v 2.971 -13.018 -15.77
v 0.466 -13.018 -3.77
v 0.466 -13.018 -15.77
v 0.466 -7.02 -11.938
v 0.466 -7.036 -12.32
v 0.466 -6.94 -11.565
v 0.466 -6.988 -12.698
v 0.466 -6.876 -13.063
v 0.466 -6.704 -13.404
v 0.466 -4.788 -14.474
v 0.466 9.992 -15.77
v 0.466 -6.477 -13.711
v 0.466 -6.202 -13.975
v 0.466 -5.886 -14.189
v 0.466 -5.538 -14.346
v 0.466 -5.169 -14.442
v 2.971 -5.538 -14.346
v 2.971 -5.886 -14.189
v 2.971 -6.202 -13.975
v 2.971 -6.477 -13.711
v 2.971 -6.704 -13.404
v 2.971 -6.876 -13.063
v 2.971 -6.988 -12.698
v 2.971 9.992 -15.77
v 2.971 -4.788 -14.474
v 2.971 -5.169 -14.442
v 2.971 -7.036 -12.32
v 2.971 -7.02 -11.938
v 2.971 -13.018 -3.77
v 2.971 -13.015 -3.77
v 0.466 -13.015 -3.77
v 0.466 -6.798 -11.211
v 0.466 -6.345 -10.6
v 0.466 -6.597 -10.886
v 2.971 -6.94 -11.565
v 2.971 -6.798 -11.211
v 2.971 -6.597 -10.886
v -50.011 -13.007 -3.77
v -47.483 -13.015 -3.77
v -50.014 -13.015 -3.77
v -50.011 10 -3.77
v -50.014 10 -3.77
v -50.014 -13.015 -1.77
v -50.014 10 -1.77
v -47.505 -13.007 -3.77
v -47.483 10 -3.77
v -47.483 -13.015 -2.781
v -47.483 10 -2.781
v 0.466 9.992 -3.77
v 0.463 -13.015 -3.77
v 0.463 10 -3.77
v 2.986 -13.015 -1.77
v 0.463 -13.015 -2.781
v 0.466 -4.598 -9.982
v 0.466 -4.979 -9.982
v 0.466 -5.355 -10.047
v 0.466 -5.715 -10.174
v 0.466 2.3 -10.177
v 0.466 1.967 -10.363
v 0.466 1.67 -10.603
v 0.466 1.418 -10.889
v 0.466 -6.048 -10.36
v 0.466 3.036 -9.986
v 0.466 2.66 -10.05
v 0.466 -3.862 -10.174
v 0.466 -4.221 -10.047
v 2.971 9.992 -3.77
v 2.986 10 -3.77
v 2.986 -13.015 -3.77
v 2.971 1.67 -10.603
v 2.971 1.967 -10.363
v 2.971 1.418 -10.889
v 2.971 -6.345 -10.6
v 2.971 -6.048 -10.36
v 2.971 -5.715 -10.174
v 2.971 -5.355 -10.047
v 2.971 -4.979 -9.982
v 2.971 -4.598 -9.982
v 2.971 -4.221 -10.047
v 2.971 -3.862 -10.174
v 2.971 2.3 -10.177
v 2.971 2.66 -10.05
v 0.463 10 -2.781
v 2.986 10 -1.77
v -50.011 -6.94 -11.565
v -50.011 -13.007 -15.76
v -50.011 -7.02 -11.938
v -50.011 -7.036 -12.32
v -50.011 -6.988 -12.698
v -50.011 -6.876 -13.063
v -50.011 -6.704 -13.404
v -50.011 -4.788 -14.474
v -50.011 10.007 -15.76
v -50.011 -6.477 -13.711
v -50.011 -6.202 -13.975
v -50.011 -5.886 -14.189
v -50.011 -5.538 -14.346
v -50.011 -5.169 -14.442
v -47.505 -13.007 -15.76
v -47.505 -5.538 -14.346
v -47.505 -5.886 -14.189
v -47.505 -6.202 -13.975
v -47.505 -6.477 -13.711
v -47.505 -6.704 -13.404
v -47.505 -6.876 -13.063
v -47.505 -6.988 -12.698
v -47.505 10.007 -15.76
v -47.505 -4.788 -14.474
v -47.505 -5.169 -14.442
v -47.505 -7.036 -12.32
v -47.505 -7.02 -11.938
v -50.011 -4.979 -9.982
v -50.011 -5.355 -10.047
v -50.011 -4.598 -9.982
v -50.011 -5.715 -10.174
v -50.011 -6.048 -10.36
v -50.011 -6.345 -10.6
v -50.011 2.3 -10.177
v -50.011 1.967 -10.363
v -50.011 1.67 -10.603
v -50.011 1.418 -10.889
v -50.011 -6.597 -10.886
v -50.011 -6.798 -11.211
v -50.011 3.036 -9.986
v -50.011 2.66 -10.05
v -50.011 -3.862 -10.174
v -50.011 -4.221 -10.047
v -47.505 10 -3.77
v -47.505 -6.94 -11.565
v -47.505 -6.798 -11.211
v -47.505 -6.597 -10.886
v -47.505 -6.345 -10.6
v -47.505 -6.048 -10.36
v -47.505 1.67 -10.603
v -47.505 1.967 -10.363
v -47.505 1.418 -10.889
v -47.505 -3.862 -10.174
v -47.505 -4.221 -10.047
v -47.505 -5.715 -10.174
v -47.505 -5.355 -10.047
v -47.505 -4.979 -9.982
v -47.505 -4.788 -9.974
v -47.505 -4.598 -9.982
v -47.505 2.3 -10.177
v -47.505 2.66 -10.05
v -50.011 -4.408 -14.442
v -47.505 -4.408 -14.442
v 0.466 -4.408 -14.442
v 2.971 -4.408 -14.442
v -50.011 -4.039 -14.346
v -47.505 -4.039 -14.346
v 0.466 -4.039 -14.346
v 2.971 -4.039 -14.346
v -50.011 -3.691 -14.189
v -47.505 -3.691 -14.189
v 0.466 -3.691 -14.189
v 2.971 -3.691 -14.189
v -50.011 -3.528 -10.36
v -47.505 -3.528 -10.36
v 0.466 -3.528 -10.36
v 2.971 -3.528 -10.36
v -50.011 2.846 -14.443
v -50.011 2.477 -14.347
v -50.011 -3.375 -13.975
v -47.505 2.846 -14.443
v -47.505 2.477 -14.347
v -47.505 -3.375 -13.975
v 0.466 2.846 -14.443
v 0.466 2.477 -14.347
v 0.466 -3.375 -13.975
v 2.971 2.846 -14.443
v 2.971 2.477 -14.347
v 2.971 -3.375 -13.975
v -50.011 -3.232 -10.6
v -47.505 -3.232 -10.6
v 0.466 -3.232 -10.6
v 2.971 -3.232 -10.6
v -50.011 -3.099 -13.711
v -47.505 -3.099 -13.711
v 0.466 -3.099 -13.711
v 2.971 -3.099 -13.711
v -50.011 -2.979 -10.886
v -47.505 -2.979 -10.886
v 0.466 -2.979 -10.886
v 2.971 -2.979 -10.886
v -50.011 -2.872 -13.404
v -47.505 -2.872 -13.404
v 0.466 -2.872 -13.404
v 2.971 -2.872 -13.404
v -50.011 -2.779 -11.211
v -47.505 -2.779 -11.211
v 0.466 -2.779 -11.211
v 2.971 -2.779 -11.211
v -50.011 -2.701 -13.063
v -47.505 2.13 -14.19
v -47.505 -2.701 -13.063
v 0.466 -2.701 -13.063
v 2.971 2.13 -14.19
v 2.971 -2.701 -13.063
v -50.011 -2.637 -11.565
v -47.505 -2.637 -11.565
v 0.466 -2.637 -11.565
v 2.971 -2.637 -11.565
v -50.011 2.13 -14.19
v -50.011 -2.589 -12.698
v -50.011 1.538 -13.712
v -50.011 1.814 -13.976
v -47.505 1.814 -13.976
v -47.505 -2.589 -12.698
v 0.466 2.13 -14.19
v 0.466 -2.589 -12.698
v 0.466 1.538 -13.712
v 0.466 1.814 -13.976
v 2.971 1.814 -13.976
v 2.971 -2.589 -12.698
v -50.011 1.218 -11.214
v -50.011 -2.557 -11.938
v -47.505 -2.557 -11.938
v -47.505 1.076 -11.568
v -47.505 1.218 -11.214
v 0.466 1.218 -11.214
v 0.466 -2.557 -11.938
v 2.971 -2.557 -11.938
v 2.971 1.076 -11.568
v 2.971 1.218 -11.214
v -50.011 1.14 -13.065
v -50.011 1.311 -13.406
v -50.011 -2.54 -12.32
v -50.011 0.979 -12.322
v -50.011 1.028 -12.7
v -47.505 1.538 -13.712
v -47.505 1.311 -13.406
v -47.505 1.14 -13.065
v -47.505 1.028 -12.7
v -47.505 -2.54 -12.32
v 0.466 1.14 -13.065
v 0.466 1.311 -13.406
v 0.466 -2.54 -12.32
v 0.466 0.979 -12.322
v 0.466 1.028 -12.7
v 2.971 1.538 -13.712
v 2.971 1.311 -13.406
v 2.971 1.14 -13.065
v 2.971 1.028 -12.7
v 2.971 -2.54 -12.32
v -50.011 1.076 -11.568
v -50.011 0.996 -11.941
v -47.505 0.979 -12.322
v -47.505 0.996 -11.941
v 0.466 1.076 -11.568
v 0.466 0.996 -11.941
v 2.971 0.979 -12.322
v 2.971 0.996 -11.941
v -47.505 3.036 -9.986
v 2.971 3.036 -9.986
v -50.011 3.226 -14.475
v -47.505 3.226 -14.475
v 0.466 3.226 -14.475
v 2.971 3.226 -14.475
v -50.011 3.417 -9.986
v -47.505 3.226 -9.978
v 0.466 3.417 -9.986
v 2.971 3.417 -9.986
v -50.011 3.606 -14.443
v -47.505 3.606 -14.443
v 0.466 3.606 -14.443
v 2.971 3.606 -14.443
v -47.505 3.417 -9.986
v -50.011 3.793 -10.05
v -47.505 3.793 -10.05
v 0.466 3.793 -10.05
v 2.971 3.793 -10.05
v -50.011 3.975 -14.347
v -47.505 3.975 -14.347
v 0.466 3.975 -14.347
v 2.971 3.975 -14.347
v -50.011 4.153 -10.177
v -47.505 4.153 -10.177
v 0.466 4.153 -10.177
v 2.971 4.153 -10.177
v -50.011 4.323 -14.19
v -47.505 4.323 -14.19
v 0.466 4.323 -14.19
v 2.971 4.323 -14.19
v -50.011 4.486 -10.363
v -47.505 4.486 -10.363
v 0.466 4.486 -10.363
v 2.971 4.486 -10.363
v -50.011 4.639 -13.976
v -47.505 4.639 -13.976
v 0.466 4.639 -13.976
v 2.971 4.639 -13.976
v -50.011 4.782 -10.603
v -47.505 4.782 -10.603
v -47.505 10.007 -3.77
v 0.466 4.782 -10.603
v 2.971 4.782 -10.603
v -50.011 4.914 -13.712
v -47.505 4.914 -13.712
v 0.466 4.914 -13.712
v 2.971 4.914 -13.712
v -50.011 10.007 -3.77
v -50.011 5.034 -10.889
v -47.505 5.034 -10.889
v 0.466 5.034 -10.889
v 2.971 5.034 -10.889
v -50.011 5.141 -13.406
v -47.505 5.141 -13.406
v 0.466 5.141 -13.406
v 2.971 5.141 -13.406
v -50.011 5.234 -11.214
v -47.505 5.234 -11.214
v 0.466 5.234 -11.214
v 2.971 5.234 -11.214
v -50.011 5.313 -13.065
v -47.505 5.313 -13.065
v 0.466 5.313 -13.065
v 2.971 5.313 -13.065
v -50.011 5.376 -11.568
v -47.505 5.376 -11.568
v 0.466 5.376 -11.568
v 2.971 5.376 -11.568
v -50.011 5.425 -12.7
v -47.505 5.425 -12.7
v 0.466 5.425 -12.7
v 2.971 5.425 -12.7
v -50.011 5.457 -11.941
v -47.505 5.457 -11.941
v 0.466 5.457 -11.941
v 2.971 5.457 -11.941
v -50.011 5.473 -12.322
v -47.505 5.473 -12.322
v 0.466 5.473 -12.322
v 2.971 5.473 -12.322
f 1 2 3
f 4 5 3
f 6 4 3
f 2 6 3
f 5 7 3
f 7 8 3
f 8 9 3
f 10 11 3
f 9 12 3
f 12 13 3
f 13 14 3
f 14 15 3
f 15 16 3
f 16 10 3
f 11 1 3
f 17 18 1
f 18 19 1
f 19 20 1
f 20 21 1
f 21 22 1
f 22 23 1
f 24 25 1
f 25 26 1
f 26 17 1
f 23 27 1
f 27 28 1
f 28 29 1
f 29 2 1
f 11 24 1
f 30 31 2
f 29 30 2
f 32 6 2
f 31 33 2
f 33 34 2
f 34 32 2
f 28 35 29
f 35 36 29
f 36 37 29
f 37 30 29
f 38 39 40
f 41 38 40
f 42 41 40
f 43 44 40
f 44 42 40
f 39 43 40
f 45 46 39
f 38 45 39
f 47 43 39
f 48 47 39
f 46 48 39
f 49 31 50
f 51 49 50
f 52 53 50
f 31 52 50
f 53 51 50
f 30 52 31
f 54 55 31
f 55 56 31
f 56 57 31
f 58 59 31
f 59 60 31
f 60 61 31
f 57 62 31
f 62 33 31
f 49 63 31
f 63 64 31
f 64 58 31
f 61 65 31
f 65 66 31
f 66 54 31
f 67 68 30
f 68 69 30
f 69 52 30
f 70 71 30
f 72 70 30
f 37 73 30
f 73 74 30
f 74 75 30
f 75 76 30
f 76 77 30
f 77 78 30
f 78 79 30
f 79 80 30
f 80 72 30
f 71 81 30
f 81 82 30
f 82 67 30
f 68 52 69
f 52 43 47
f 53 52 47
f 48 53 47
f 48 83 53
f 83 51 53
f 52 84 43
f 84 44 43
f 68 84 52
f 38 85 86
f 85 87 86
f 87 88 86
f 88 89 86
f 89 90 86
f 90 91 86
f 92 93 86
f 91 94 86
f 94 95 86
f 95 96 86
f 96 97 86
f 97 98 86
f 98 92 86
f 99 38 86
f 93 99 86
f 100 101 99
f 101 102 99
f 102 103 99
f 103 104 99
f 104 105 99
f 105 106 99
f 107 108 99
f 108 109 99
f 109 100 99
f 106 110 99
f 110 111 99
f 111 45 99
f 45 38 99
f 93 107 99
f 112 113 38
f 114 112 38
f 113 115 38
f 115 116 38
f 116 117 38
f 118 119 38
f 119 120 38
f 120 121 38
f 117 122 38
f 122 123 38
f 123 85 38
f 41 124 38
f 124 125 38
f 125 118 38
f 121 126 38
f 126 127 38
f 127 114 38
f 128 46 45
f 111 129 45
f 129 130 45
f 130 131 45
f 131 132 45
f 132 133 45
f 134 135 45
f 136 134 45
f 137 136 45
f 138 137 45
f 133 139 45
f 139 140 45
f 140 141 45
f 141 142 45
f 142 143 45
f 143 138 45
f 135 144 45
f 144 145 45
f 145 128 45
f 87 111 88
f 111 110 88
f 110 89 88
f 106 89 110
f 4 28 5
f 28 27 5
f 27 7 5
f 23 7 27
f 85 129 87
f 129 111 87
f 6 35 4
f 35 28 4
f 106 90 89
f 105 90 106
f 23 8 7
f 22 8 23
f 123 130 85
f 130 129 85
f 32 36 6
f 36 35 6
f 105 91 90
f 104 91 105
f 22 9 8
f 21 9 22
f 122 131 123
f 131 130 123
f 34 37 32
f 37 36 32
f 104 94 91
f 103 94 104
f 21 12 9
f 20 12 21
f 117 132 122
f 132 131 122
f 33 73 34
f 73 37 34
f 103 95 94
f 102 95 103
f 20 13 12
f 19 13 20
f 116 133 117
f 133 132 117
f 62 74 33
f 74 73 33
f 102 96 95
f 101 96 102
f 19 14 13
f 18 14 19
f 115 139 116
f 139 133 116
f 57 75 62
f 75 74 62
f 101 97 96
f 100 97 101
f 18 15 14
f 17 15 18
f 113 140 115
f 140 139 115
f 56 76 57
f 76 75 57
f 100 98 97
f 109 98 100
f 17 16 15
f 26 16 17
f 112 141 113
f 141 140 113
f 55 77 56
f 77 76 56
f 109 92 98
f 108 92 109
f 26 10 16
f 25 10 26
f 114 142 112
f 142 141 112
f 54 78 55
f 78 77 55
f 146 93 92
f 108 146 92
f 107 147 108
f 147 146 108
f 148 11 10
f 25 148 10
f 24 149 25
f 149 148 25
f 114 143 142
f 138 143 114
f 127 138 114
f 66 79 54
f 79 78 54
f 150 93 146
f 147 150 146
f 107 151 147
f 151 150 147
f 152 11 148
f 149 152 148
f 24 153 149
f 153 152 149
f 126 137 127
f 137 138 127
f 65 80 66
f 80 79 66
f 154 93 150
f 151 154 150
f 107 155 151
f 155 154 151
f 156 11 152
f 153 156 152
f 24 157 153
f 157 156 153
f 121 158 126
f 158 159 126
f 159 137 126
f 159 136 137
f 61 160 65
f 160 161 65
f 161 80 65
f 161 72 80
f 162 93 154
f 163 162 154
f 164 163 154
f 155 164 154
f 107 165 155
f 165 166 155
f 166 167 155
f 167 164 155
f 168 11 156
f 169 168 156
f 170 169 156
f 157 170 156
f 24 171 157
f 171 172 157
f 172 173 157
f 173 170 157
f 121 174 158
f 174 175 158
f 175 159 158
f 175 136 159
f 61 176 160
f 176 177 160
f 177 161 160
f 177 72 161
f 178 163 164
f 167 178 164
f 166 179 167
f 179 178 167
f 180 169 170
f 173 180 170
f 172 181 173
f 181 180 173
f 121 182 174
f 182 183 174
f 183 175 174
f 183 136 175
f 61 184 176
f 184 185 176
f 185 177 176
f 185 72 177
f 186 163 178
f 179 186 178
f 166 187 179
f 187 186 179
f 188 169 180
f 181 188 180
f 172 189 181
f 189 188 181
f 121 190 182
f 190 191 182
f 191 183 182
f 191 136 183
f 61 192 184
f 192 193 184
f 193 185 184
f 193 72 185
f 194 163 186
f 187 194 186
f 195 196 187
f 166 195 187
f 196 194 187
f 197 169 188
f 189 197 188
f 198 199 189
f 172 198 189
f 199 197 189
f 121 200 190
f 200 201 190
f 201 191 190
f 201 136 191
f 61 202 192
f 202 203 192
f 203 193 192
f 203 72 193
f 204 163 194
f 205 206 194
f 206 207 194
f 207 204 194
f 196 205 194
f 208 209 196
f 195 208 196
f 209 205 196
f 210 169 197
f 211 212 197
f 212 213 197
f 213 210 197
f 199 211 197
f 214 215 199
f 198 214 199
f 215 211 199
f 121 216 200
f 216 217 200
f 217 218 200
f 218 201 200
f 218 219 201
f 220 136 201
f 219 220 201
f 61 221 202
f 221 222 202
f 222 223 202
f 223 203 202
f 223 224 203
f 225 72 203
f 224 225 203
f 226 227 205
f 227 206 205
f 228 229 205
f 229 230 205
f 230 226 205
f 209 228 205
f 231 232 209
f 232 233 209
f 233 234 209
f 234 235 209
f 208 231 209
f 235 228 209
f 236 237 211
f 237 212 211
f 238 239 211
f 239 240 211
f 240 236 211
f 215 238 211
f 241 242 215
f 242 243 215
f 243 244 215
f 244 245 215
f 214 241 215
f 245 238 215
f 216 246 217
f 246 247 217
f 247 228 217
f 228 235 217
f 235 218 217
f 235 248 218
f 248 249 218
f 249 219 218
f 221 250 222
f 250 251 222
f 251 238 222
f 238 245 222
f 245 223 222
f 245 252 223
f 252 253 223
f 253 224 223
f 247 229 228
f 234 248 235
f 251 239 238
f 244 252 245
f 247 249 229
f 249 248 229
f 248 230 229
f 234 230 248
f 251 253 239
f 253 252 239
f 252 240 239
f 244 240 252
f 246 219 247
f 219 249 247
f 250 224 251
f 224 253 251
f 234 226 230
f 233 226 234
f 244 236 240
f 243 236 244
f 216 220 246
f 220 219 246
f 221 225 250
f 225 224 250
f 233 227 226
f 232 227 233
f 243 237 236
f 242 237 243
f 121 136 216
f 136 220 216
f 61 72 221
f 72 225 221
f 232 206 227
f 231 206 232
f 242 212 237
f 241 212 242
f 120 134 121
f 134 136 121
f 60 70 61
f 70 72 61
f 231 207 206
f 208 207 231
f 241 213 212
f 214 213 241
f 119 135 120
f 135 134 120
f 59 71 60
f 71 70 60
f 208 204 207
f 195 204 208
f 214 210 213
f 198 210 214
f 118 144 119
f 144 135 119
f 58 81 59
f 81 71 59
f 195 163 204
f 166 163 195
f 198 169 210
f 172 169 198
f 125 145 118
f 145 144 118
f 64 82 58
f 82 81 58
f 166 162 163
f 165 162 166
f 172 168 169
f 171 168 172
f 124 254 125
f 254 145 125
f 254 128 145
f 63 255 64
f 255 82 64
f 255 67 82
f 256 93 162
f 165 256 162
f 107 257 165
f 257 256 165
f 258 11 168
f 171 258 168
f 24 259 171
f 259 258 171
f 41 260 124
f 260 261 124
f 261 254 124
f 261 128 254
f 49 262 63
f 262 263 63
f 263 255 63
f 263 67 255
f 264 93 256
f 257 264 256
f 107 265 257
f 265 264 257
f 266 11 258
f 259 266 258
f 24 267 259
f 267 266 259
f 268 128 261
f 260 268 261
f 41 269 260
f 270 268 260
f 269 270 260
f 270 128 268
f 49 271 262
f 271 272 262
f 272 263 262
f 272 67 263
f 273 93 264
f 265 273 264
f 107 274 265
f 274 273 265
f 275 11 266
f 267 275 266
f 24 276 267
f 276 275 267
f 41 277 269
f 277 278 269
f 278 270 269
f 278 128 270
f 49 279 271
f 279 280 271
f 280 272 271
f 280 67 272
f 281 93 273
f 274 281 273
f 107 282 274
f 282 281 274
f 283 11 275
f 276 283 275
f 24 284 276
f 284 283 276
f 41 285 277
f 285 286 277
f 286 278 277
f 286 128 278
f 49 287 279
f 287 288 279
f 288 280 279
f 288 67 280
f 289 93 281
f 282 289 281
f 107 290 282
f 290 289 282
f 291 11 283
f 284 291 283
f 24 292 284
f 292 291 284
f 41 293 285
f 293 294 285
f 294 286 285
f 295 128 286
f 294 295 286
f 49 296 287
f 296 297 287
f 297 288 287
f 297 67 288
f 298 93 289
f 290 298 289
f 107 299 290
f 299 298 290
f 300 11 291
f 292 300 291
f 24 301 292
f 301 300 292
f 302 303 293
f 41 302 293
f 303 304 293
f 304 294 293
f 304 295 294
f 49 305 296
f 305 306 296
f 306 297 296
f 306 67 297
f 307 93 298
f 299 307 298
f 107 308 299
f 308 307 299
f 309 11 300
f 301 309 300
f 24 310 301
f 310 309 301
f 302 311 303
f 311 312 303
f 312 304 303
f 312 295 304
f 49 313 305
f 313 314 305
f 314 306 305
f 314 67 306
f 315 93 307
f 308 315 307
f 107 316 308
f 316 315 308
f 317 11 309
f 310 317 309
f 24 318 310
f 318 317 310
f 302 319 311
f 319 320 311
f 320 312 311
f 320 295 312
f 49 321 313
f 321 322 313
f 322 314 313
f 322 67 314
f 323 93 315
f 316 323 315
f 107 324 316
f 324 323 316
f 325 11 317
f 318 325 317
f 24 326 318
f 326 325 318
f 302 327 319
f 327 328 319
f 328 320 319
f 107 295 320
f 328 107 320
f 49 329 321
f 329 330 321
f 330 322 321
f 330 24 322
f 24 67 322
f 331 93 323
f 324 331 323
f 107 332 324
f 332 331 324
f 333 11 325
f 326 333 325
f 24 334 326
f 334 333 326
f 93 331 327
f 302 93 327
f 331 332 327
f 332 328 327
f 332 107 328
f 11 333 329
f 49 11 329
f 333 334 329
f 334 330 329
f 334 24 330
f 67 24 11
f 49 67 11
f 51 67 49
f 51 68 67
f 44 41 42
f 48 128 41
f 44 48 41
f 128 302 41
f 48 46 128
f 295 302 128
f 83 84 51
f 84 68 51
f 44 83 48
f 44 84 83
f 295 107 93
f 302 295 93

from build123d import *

# Parameters (mm, degrees)
BOSS_EXTRUDE3_DEPTH       = 10
BOSS_EXTRUDE3_DEPTH_BACK  = 13.014944575
SKETCH1_W                 = 53
SKETCH1_H                 = 2
SKETCH2_W                 = 2.504977783
SKETCH2_H                 = 23.010208786
BOSS_EXTRUDE4_DEPTH       = 12
SKETCH3_W                 = 2.506556419
SKETCH3_H                 = 23.01450768
BOSS_EXTRUDE5_DEPTH       = 11.990007083
BOSS_EXTRUDE6_START       = -52.981944033
BOSS_EXTRUDE6_OUTLINE_R   = 2.248774255
BOSS_EXTRUDE6_OUTLINE_R_2 = 2.25
BOSS_EXTRUDE6_DEPTH       = 52.981944033
SKETCH6_W                 = 47.946959802
SKETCH6_H                 = 0.996975491
CUT_EXTRUDE2_DEPTH        = 29


# Read off the part's stored shape, not the designer's step: Boss-Extrude6
with BuildPart() as part:
    # Sketch1 → Boss-Extrude3 (new, two sides: drawn at the far end of the back side and taken through both)
    with BuildSketch(Plane(origin=(0, 0, 0), x_dir=(1, 0, 0), z_dir=(0, 1, 0)).offset(-BOSS_EXTRUDE3_DEPTH_BACK)):
        with Locations((-23.514130948, 2.769901189)):
            Rectangle(SKETCH1_W, SKETCH1_H)
    extrude(amount=BOSS_EXTRUDE3_DEPTH + BOSS_EXTRUDE3_DEPTH_BACK)

    # Sketch2 → Boss-Extrude4 (add)
    with BuildSketch(Plane(origin=(-2.522360337, 0, -3.769901189), x_dir=(-1, 0, 0), z_dir=(0, 0, -1))):
        with Locations((-4.240718342, -1.512860106)):
            Rectangle(SKETCH2_W, SKETCH2_H)
    extrude(amount=BOSS_EXTRUDE4_DEPTH)

    # Sketch3 → Boss-Extrude5 (add)
    with BuildSketch(Plane(origin=(0, 0, -3.769901189), x_dir=(-1, 0, 0), z_dir=(0, 0, -1))):
        with Locations((48.757818929, -1.500170116)):
            Rectangle(SKETCH3_W, SKETCH3_H)
    extrude(amount=BOSS_EXTRUDE5_DEPTH)

    # Boss-Extrude6 outline → Boss-Extrude6 (cut)
    with BuildSketch(Plane(origin=(2.970846895, 0, 0), x_dir=(0, 0, -1), z_dir=(1, 0, 0)).offset(BOSS_EXTRUDE6_START)):
        with Locations((12.226476123, 3.226243709)):
            Circle(BOSS_EXTRUDE6_OUTLINE_R)
        with Locations((12.224283194, -4.788420336)):
            Circle(BOSS_EXTRUDE6_OUTLINE_R_2)
    extrude(amount=BOSS_EXTRUDE6_DEPTH, mode=Mode.SUBTRACT)

    # Sketch6 → Cut-Extrude2 (cut)
    with BuildSketch(Plane(origin=(0, -13.014944575, 0), x_dir=(-1, 0, 0), z_dir=(0, -1, 0))):
        with Locations((23.509982369, 3.279148845)):
            Rectangle(SKETCH6_W, SKETCH6_H)
    extrude(amount=-CUT_EXTRUDE2_DEPTH, mode=Mode.SUBTRACT)


solid = part.part
